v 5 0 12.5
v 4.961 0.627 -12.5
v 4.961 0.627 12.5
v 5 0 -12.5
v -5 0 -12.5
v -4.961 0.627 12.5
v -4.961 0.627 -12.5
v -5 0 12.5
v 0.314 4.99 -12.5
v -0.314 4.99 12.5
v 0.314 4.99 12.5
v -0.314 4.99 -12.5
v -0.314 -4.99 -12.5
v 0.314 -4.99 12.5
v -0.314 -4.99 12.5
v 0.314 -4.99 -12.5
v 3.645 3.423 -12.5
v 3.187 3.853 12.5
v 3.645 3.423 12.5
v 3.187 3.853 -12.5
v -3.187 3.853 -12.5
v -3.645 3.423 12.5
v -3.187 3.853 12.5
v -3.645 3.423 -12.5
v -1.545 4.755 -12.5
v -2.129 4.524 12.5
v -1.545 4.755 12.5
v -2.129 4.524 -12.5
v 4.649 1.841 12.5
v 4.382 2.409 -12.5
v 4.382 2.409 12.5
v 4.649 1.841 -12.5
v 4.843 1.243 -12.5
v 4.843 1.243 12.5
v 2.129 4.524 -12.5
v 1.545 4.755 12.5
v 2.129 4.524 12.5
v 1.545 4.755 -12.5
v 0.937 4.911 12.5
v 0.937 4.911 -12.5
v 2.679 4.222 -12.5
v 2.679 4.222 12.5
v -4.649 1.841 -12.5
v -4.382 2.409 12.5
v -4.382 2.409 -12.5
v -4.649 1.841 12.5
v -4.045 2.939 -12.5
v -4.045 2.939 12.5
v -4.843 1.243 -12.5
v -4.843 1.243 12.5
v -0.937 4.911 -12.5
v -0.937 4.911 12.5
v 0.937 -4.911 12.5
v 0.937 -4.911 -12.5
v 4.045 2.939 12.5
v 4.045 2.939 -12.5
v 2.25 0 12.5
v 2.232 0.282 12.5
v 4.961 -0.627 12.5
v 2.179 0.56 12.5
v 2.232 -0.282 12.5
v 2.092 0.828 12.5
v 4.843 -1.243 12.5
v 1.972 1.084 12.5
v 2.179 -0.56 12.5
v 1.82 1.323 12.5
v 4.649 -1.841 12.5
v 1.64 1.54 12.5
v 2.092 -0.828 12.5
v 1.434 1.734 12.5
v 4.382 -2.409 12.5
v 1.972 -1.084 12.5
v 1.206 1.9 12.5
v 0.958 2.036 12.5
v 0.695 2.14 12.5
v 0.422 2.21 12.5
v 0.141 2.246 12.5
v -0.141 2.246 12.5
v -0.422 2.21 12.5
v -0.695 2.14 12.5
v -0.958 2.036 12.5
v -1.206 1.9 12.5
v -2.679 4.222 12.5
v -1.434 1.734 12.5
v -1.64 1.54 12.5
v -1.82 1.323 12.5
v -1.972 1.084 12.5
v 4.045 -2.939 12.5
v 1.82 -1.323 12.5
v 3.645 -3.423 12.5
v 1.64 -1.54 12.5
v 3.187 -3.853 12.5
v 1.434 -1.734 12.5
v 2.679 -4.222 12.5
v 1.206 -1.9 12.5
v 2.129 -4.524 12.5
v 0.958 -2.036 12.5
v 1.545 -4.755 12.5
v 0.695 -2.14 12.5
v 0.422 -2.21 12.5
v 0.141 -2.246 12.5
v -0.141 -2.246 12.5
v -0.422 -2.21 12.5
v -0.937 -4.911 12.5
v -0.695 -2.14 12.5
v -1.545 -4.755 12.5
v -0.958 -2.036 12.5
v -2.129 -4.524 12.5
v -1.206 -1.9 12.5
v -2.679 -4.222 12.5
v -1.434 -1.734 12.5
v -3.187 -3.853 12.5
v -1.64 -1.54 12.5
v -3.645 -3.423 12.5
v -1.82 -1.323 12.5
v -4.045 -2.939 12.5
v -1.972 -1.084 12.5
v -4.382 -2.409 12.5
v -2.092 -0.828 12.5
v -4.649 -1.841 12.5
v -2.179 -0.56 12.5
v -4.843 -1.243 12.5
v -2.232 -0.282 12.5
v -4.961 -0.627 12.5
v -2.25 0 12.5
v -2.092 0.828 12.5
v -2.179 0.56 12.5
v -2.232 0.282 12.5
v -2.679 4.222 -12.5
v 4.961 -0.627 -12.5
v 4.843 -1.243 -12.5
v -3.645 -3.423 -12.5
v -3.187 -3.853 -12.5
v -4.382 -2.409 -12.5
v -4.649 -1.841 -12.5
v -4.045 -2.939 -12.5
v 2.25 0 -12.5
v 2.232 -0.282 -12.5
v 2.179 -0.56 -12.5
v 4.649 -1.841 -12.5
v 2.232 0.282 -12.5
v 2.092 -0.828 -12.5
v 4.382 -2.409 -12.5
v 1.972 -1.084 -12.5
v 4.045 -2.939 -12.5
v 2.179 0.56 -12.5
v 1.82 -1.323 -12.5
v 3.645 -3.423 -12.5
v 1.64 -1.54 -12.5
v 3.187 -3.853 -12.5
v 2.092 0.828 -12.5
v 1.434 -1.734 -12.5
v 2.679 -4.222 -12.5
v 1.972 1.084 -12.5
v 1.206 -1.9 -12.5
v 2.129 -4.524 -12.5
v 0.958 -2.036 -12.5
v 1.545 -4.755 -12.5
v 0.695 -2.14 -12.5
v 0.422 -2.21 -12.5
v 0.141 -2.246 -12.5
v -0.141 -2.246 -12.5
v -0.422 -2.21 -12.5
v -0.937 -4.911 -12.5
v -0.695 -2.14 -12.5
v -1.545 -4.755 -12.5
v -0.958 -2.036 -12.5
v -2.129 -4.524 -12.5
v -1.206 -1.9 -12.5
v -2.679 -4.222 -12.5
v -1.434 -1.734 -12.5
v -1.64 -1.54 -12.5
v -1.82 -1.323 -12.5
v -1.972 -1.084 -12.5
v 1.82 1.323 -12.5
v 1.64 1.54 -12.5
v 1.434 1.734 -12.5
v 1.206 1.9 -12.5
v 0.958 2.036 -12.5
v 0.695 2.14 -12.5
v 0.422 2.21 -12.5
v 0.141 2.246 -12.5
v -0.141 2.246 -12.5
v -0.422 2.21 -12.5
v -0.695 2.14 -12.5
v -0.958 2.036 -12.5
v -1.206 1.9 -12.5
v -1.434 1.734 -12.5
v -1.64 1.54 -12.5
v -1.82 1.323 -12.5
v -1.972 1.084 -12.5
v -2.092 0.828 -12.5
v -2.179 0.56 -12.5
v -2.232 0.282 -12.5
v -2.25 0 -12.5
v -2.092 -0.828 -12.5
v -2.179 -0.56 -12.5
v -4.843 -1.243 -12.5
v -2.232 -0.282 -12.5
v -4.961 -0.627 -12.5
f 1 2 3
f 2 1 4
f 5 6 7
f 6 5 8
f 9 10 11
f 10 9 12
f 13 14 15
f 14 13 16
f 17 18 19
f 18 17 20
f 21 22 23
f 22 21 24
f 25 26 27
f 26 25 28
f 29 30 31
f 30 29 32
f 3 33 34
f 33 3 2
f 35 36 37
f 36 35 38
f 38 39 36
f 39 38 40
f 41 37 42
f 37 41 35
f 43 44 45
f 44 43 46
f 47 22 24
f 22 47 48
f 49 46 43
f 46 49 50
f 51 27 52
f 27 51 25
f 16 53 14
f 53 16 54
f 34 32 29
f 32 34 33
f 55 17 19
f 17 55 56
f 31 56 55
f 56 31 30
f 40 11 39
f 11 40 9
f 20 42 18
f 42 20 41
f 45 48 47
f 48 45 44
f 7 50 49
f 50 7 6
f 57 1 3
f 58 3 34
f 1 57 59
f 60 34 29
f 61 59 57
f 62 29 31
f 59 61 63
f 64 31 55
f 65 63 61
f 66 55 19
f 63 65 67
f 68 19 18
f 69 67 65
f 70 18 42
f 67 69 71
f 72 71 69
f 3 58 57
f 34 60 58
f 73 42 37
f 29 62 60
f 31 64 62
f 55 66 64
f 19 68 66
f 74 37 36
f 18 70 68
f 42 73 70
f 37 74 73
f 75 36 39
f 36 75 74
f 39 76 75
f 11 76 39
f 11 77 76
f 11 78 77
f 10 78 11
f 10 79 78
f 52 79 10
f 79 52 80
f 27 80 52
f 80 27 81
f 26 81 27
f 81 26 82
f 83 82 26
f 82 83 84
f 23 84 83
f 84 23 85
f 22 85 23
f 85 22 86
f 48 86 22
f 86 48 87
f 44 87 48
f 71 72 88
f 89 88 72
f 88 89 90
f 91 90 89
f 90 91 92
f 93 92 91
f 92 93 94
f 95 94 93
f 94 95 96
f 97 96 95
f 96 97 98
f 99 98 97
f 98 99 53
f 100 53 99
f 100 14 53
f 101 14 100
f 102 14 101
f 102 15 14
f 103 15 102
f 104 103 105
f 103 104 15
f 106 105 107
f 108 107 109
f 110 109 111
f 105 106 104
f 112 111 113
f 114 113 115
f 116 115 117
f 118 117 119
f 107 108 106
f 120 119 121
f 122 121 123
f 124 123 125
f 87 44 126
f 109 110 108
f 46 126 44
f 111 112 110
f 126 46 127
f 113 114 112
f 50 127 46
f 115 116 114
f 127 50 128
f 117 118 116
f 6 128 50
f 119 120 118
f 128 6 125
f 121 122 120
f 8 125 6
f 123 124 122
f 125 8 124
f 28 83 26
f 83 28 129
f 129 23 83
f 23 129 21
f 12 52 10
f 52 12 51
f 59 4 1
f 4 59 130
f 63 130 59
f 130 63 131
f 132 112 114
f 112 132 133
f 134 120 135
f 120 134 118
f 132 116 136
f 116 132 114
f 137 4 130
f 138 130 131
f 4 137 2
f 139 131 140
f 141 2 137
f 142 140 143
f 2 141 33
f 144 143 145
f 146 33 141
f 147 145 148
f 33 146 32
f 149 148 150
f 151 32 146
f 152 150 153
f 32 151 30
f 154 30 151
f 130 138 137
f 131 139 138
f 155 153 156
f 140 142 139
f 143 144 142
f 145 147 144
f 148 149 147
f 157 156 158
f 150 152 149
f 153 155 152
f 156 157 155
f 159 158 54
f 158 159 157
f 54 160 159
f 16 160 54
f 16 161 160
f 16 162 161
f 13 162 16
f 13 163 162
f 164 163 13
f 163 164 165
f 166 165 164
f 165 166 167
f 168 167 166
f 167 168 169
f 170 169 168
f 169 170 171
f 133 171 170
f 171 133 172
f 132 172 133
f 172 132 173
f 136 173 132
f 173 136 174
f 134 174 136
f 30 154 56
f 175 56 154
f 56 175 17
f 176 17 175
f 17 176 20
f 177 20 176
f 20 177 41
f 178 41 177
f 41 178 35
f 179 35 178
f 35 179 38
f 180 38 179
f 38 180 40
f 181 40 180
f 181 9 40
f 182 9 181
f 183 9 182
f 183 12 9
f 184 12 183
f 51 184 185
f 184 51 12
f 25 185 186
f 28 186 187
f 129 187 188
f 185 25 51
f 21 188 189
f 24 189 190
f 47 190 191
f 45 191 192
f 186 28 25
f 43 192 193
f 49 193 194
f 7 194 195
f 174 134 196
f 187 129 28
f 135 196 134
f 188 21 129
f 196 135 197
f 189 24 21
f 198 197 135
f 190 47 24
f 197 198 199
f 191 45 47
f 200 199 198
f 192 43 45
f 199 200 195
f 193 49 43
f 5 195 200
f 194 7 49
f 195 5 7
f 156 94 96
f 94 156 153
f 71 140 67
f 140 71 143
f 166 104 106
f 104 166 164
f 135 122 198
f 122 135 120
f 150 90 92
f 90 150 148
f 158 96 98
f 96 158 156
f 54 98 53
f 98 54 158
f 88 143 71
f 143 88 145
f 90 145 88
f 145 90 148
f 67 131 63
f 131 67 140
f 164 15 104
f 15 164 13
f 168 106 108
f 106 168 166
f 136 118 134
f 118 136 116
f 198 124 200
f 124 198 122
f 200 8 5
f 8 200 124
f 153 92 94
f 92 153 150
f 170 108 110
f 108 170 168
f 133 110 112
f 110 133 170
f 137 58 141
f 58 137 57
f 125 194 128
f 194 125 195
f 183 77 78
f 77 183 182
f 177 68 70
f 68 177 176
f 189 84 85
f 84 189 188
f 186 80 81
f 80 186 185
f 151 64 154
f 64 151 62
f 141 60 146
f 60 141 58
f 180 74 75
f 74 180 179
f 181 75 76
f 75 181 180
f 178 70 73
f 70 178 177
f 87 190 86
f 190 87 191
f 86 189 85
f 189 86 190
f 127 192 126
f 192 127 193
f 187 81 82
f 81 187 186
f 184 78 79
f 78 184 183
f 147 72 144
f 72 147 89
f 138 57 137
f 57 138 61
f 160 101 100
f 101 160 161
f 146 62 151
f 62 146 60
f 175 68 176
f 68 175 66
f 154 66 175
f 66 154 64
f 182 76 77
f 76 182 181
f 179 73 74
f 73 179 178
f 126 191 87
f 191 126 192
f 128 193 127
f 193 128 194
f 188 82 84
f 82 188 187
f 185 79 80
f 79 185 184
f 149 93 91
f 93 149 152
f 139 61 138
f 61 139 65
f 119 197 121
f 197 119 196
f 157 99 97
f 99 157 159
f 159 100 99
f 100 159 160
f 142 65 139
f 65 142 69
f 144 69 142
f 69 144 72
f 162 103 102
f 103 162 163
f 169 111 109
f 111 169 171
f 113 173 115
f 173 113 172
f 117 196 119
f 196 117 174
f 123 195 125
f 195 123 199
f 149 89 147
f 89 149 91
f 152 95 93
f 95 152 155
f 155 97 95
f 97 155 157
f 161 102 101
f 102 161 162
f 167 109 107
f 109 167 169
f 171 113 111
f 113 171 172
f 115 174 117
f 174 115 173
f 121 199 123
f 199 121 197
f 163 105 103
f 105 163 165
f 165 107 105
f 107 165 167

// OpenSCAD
$fn = 50;


difference() {
	union() {
		translate(v = [0, 0, -12.5000000000]) {
			cylinder(h = 25, r = 5.0000000000);
		}
	}
	union() {
		translate(v = [0, 0, -100.0000000000]) {
			cylinder(h = 200, r = 2.2500000000);
		}
	}
}
